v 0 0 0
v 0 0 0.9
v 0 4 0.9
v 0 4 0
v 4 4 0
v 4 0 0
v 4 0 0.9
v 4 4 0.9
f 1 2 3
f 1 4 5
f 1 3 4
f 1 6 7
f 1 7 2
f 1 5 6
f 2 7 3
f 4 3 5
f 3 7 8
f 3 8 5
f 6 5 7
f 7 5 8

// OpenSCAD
/* Warning, this is a very basic generator with a lot of approximation 
input data : [VQFN, UFX, 4x4x0.9mm, 32, , A, C04-00368A]
generated by com.zoubworld.electronics.cad.model3d.Basic
Date : Sun Feb 15 10:50:48 CET 2026
*/

//body
color("black")
translate([0,0,0])
cube([4.0,4.0,0.9], center=false);
